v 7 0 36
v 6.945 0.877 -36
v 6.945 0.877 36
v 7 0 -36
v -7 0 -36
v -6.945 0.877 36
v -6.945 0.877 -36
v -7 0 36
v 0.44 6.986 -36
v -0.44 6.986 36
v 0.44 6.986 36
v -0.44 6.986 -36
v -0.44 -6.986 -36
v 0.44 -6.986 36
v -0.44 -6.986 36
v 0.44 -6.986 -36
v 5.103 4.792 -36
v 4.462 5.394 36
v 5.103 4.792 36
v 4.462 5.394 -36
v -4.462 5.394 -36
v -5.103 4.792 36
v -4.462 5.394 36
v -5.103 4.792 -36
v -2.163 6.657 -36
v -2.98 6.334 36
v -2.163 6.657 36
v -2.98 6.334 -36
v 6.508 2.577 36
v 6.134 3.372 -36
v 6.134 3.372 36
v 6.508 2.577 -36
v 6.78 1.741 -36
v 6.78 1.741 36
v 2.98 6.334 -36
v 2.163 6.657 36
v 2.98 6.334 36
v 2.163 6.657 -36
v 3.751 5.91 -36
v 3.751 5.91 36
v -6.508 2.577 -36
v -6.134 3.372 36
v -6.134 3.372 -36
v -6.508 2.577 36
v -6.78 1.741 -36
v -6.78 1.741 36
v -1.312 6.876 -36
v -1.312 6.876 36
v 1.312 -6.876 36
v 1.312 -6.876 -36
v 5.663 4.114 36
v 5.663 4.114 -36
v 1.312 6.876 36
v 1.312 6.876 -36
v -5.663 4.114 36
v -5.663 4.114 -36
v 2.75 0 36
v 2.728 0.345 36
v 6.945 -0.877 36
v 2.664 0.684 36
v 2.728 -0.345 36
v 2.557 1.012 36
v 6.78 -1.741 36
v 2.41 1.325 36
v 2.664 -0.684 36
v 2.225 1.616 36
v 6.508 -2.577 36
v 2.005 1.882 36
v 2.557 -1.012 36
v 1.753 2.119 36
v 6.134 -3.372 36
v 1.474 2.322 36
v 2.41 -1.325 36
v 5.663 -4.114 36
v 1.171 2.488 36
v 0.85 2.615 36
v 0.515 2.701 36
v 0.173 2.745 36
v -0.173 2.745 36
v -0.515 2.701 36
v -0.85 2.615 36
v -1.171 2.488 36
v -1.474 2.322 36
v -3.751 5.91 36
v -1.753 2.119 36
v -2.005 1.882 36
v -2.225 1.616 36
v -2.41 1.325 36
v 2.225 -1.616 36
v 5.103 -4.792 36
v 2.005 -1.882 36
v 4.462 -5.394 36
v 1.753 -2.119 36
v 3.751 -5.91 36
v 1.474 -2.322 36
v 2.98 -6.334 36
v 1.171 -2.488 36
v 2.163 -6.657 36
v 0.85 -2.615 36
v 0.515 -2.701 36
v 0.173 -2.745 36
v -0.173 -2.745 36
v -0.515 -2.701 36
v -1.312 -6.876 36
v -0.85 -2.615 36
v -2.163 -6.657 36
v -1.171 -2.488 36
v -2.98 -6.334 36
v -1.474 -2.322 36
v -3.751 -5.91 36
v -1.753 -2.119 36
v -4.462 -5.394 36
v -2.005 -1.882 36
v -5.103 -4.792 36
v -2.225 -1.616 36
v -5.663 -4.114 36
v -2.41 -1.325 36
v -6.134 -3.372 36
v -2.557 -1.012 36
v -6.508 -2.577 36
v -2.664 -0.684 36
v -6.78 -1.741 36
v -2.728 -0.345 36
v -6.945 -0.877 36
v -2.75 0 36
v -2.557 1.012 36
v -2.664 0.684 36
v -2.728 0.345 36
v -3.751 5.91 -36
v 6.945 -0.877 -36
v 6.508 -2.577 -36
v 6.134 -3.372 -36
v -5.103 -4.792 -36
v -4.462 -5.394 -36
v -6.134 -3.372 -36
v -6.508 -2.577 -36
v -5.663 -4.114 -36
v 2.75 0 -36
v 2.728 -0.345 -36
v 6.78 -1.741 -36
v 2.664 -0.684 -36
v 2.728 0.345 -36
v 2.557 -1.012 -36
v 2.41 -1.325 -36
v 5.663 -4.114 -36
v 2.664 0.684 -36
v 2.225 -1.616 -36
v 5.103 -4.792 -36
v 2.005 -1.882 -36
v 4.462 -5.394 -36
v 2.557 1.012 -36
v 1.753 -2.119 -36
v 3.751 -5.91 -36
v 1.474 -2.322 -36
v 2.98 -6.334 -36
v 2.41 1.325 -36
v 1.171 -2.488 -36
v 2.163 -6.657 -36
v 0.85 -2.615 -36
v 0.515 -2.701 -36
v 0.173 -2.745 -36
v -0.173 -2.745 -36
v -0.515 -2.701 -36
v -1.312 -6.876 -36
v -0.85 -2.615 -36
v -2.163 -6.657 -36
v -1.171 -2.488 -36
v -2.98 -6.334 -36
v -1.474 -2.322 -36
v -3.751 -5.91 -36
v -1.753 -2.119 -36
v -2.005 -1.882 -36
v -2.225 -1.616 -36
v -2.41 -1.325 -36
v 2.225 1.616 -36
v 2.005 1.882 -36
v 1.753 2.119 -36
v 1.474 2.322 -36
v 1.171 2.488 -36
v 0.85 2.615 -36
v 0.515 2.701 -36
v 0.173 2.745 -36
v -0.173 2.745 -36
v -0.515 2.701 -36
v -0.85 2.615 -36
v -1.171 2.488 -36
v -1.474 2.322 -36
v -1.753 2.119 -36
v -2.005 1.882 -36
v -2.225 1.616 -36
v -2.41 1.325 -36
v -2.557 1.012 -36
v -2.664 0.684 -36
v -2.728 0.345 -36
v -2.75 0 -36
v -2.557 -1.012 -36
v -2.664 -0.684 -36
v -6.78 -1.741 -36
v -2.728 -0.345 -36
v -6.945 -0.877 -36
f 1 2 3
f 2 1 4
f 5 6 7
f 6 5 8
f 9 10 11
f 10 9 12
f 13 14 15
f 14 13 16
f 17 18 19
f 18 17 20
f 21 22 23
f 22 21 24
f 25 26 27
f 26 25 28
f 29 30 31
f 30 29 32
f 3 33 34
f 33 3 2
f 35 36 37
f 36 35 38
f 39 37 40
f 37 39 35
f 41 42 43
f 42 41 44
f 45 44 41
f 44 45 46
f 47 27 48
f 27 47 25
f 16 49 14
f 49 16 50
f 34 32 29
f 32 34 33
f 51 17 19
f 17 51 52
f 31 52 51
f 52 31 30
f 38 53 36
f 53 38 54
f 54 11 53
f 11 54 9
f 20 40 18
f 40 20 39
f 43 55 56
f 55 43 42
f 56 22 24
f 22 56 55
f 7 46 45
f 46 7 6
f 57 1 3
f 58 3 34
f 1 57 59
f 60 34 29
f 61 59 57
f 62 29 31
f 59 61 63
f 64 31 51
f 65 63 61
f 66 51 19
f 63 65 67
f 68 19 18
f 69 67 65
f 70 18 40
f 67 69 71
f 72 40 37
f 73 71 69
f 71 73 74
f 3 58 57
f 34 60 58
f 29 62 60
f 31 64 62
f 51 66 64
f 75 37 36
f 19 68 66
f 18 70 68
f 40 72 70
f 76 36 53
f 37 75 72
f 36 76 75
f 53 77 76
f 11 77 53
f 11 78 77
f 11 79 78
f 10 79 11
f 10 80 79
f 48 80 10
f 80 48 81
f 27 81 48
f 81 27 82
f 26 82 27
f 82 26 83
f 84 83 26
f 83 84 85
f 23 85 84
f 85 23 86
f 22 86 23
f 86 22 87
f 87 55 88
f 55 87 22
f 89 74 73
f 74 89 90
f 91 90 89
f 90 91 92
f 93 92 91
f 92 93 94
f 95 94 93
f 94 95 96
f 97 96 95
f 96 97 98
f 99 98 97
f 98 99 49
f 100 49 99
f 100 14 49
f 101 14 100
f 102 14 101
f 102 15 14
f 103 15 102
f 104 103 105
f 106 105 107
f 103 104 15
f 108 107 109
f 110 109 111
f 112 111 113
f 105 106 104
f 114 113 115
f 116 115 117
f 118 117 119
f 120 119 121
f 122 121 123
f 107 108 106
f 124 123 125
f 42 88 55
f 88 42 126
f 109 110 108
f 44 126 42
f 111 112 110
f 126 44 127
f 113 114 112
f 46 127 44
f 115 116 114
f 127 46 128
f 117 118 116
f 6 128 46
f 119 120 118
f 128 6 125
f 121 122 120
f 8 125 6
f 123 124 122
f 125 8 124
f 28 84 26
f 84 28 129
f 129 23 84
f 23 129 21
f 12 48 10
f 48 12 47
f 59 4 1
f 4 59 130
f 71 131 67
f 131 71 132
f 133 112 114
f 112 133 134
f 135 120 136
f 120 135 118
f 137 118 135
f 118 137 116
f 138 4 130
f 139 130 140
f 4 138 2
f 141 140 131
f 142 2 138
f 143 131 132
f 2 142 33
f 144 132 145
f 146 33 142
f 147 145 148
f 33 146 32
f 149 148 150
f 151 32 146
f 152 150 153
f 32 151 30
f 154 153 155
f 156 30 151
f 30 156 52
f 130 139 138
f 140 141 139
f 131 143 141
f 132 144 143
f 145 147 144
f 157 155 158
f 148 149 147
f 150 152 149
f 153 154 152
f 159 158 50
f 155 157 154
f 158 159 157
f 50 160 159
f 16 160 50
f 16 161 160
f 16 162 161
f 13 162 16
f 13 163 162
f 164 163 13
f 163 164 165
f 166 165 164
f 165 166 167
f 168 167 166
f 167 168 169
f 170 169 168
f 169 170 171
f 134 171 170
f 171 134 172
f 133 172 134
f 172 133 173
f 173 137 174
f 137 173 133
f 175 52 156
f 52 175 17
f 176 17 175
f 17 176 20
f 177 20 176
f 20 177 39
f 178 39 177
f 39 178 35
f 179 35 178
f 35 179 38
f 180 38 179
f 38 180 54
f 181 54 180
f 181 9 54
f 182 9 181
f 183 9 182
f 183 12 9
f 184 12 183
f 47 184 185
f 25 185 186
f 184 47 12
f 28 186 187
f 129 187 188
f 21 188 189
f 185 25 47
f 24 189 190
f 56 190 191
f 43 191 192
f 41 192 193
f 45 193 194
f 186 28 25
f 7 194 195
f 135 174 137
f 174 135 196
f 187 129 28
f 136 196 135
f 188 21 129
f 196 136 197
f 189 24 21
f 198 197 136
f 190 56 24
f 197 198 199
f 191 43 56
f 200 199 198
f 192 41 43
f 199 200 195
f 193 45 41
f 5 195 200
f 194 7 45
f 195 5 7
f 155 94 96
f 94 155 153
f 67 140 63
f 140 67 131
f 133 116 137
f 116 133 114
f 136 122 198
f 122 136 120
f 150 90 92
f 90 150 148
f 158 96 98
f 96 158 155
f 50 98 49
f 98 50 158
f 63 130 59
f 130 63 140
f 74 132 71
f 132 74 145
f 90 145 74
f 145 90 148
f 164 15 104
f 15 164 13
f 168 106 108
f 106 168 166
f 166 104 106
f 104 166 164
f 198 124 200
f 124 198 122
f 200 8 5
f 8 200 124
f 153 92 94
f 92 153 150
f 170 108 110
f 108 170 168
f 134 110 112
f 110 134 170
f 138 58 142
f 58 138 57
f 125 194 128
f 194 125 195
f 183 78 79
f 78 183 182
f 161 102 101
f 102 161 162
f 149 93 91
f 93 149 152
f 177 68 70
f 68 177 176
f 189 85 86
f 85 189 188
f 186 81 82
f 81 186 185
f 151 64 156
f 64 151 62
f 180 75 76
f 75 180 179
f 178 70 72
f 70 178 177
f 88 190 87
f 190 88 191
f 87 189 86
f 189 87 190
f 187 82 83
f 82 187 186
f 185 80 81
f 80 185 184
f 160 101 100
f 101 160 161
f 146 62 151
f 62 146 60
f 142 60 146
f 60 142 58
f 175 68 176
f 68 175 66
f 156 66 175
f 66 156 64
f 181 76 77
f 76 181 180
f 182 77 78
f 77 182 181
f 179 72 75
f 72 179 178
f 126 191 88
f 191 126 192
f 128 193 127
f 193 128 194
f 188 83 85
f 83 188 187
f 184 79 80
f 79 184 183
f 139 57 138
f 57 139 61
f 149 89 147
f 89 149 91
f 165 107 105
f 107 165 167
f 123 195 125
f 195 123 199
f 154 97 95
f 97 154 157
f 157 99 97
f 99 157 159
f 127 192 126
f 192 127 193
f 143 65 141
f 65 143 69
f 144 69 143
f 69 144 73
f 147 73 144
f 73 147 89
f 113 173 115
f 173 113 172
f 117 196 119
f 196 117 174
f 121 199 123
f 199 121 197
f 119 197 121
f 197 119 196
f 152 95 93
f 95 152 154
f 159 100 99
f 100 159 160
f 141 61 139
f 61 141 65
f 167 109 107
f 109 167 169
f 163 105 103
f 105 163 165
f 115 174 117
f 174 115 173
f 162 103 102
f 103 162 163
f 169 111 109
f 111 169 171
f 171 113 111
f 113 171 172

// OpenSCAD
$fn = 50;


difference() {
	union() {
		translate(v = [0, 0, -36.0000000000]) {
			cylinder(h = 72, r = 7.0000000000);
		}
	}
	union() {
		translate(v = [0, 0, -100.0000000000]) {
			cylinder(h = 200, r = 2.7500000000);
		}
	}
}
